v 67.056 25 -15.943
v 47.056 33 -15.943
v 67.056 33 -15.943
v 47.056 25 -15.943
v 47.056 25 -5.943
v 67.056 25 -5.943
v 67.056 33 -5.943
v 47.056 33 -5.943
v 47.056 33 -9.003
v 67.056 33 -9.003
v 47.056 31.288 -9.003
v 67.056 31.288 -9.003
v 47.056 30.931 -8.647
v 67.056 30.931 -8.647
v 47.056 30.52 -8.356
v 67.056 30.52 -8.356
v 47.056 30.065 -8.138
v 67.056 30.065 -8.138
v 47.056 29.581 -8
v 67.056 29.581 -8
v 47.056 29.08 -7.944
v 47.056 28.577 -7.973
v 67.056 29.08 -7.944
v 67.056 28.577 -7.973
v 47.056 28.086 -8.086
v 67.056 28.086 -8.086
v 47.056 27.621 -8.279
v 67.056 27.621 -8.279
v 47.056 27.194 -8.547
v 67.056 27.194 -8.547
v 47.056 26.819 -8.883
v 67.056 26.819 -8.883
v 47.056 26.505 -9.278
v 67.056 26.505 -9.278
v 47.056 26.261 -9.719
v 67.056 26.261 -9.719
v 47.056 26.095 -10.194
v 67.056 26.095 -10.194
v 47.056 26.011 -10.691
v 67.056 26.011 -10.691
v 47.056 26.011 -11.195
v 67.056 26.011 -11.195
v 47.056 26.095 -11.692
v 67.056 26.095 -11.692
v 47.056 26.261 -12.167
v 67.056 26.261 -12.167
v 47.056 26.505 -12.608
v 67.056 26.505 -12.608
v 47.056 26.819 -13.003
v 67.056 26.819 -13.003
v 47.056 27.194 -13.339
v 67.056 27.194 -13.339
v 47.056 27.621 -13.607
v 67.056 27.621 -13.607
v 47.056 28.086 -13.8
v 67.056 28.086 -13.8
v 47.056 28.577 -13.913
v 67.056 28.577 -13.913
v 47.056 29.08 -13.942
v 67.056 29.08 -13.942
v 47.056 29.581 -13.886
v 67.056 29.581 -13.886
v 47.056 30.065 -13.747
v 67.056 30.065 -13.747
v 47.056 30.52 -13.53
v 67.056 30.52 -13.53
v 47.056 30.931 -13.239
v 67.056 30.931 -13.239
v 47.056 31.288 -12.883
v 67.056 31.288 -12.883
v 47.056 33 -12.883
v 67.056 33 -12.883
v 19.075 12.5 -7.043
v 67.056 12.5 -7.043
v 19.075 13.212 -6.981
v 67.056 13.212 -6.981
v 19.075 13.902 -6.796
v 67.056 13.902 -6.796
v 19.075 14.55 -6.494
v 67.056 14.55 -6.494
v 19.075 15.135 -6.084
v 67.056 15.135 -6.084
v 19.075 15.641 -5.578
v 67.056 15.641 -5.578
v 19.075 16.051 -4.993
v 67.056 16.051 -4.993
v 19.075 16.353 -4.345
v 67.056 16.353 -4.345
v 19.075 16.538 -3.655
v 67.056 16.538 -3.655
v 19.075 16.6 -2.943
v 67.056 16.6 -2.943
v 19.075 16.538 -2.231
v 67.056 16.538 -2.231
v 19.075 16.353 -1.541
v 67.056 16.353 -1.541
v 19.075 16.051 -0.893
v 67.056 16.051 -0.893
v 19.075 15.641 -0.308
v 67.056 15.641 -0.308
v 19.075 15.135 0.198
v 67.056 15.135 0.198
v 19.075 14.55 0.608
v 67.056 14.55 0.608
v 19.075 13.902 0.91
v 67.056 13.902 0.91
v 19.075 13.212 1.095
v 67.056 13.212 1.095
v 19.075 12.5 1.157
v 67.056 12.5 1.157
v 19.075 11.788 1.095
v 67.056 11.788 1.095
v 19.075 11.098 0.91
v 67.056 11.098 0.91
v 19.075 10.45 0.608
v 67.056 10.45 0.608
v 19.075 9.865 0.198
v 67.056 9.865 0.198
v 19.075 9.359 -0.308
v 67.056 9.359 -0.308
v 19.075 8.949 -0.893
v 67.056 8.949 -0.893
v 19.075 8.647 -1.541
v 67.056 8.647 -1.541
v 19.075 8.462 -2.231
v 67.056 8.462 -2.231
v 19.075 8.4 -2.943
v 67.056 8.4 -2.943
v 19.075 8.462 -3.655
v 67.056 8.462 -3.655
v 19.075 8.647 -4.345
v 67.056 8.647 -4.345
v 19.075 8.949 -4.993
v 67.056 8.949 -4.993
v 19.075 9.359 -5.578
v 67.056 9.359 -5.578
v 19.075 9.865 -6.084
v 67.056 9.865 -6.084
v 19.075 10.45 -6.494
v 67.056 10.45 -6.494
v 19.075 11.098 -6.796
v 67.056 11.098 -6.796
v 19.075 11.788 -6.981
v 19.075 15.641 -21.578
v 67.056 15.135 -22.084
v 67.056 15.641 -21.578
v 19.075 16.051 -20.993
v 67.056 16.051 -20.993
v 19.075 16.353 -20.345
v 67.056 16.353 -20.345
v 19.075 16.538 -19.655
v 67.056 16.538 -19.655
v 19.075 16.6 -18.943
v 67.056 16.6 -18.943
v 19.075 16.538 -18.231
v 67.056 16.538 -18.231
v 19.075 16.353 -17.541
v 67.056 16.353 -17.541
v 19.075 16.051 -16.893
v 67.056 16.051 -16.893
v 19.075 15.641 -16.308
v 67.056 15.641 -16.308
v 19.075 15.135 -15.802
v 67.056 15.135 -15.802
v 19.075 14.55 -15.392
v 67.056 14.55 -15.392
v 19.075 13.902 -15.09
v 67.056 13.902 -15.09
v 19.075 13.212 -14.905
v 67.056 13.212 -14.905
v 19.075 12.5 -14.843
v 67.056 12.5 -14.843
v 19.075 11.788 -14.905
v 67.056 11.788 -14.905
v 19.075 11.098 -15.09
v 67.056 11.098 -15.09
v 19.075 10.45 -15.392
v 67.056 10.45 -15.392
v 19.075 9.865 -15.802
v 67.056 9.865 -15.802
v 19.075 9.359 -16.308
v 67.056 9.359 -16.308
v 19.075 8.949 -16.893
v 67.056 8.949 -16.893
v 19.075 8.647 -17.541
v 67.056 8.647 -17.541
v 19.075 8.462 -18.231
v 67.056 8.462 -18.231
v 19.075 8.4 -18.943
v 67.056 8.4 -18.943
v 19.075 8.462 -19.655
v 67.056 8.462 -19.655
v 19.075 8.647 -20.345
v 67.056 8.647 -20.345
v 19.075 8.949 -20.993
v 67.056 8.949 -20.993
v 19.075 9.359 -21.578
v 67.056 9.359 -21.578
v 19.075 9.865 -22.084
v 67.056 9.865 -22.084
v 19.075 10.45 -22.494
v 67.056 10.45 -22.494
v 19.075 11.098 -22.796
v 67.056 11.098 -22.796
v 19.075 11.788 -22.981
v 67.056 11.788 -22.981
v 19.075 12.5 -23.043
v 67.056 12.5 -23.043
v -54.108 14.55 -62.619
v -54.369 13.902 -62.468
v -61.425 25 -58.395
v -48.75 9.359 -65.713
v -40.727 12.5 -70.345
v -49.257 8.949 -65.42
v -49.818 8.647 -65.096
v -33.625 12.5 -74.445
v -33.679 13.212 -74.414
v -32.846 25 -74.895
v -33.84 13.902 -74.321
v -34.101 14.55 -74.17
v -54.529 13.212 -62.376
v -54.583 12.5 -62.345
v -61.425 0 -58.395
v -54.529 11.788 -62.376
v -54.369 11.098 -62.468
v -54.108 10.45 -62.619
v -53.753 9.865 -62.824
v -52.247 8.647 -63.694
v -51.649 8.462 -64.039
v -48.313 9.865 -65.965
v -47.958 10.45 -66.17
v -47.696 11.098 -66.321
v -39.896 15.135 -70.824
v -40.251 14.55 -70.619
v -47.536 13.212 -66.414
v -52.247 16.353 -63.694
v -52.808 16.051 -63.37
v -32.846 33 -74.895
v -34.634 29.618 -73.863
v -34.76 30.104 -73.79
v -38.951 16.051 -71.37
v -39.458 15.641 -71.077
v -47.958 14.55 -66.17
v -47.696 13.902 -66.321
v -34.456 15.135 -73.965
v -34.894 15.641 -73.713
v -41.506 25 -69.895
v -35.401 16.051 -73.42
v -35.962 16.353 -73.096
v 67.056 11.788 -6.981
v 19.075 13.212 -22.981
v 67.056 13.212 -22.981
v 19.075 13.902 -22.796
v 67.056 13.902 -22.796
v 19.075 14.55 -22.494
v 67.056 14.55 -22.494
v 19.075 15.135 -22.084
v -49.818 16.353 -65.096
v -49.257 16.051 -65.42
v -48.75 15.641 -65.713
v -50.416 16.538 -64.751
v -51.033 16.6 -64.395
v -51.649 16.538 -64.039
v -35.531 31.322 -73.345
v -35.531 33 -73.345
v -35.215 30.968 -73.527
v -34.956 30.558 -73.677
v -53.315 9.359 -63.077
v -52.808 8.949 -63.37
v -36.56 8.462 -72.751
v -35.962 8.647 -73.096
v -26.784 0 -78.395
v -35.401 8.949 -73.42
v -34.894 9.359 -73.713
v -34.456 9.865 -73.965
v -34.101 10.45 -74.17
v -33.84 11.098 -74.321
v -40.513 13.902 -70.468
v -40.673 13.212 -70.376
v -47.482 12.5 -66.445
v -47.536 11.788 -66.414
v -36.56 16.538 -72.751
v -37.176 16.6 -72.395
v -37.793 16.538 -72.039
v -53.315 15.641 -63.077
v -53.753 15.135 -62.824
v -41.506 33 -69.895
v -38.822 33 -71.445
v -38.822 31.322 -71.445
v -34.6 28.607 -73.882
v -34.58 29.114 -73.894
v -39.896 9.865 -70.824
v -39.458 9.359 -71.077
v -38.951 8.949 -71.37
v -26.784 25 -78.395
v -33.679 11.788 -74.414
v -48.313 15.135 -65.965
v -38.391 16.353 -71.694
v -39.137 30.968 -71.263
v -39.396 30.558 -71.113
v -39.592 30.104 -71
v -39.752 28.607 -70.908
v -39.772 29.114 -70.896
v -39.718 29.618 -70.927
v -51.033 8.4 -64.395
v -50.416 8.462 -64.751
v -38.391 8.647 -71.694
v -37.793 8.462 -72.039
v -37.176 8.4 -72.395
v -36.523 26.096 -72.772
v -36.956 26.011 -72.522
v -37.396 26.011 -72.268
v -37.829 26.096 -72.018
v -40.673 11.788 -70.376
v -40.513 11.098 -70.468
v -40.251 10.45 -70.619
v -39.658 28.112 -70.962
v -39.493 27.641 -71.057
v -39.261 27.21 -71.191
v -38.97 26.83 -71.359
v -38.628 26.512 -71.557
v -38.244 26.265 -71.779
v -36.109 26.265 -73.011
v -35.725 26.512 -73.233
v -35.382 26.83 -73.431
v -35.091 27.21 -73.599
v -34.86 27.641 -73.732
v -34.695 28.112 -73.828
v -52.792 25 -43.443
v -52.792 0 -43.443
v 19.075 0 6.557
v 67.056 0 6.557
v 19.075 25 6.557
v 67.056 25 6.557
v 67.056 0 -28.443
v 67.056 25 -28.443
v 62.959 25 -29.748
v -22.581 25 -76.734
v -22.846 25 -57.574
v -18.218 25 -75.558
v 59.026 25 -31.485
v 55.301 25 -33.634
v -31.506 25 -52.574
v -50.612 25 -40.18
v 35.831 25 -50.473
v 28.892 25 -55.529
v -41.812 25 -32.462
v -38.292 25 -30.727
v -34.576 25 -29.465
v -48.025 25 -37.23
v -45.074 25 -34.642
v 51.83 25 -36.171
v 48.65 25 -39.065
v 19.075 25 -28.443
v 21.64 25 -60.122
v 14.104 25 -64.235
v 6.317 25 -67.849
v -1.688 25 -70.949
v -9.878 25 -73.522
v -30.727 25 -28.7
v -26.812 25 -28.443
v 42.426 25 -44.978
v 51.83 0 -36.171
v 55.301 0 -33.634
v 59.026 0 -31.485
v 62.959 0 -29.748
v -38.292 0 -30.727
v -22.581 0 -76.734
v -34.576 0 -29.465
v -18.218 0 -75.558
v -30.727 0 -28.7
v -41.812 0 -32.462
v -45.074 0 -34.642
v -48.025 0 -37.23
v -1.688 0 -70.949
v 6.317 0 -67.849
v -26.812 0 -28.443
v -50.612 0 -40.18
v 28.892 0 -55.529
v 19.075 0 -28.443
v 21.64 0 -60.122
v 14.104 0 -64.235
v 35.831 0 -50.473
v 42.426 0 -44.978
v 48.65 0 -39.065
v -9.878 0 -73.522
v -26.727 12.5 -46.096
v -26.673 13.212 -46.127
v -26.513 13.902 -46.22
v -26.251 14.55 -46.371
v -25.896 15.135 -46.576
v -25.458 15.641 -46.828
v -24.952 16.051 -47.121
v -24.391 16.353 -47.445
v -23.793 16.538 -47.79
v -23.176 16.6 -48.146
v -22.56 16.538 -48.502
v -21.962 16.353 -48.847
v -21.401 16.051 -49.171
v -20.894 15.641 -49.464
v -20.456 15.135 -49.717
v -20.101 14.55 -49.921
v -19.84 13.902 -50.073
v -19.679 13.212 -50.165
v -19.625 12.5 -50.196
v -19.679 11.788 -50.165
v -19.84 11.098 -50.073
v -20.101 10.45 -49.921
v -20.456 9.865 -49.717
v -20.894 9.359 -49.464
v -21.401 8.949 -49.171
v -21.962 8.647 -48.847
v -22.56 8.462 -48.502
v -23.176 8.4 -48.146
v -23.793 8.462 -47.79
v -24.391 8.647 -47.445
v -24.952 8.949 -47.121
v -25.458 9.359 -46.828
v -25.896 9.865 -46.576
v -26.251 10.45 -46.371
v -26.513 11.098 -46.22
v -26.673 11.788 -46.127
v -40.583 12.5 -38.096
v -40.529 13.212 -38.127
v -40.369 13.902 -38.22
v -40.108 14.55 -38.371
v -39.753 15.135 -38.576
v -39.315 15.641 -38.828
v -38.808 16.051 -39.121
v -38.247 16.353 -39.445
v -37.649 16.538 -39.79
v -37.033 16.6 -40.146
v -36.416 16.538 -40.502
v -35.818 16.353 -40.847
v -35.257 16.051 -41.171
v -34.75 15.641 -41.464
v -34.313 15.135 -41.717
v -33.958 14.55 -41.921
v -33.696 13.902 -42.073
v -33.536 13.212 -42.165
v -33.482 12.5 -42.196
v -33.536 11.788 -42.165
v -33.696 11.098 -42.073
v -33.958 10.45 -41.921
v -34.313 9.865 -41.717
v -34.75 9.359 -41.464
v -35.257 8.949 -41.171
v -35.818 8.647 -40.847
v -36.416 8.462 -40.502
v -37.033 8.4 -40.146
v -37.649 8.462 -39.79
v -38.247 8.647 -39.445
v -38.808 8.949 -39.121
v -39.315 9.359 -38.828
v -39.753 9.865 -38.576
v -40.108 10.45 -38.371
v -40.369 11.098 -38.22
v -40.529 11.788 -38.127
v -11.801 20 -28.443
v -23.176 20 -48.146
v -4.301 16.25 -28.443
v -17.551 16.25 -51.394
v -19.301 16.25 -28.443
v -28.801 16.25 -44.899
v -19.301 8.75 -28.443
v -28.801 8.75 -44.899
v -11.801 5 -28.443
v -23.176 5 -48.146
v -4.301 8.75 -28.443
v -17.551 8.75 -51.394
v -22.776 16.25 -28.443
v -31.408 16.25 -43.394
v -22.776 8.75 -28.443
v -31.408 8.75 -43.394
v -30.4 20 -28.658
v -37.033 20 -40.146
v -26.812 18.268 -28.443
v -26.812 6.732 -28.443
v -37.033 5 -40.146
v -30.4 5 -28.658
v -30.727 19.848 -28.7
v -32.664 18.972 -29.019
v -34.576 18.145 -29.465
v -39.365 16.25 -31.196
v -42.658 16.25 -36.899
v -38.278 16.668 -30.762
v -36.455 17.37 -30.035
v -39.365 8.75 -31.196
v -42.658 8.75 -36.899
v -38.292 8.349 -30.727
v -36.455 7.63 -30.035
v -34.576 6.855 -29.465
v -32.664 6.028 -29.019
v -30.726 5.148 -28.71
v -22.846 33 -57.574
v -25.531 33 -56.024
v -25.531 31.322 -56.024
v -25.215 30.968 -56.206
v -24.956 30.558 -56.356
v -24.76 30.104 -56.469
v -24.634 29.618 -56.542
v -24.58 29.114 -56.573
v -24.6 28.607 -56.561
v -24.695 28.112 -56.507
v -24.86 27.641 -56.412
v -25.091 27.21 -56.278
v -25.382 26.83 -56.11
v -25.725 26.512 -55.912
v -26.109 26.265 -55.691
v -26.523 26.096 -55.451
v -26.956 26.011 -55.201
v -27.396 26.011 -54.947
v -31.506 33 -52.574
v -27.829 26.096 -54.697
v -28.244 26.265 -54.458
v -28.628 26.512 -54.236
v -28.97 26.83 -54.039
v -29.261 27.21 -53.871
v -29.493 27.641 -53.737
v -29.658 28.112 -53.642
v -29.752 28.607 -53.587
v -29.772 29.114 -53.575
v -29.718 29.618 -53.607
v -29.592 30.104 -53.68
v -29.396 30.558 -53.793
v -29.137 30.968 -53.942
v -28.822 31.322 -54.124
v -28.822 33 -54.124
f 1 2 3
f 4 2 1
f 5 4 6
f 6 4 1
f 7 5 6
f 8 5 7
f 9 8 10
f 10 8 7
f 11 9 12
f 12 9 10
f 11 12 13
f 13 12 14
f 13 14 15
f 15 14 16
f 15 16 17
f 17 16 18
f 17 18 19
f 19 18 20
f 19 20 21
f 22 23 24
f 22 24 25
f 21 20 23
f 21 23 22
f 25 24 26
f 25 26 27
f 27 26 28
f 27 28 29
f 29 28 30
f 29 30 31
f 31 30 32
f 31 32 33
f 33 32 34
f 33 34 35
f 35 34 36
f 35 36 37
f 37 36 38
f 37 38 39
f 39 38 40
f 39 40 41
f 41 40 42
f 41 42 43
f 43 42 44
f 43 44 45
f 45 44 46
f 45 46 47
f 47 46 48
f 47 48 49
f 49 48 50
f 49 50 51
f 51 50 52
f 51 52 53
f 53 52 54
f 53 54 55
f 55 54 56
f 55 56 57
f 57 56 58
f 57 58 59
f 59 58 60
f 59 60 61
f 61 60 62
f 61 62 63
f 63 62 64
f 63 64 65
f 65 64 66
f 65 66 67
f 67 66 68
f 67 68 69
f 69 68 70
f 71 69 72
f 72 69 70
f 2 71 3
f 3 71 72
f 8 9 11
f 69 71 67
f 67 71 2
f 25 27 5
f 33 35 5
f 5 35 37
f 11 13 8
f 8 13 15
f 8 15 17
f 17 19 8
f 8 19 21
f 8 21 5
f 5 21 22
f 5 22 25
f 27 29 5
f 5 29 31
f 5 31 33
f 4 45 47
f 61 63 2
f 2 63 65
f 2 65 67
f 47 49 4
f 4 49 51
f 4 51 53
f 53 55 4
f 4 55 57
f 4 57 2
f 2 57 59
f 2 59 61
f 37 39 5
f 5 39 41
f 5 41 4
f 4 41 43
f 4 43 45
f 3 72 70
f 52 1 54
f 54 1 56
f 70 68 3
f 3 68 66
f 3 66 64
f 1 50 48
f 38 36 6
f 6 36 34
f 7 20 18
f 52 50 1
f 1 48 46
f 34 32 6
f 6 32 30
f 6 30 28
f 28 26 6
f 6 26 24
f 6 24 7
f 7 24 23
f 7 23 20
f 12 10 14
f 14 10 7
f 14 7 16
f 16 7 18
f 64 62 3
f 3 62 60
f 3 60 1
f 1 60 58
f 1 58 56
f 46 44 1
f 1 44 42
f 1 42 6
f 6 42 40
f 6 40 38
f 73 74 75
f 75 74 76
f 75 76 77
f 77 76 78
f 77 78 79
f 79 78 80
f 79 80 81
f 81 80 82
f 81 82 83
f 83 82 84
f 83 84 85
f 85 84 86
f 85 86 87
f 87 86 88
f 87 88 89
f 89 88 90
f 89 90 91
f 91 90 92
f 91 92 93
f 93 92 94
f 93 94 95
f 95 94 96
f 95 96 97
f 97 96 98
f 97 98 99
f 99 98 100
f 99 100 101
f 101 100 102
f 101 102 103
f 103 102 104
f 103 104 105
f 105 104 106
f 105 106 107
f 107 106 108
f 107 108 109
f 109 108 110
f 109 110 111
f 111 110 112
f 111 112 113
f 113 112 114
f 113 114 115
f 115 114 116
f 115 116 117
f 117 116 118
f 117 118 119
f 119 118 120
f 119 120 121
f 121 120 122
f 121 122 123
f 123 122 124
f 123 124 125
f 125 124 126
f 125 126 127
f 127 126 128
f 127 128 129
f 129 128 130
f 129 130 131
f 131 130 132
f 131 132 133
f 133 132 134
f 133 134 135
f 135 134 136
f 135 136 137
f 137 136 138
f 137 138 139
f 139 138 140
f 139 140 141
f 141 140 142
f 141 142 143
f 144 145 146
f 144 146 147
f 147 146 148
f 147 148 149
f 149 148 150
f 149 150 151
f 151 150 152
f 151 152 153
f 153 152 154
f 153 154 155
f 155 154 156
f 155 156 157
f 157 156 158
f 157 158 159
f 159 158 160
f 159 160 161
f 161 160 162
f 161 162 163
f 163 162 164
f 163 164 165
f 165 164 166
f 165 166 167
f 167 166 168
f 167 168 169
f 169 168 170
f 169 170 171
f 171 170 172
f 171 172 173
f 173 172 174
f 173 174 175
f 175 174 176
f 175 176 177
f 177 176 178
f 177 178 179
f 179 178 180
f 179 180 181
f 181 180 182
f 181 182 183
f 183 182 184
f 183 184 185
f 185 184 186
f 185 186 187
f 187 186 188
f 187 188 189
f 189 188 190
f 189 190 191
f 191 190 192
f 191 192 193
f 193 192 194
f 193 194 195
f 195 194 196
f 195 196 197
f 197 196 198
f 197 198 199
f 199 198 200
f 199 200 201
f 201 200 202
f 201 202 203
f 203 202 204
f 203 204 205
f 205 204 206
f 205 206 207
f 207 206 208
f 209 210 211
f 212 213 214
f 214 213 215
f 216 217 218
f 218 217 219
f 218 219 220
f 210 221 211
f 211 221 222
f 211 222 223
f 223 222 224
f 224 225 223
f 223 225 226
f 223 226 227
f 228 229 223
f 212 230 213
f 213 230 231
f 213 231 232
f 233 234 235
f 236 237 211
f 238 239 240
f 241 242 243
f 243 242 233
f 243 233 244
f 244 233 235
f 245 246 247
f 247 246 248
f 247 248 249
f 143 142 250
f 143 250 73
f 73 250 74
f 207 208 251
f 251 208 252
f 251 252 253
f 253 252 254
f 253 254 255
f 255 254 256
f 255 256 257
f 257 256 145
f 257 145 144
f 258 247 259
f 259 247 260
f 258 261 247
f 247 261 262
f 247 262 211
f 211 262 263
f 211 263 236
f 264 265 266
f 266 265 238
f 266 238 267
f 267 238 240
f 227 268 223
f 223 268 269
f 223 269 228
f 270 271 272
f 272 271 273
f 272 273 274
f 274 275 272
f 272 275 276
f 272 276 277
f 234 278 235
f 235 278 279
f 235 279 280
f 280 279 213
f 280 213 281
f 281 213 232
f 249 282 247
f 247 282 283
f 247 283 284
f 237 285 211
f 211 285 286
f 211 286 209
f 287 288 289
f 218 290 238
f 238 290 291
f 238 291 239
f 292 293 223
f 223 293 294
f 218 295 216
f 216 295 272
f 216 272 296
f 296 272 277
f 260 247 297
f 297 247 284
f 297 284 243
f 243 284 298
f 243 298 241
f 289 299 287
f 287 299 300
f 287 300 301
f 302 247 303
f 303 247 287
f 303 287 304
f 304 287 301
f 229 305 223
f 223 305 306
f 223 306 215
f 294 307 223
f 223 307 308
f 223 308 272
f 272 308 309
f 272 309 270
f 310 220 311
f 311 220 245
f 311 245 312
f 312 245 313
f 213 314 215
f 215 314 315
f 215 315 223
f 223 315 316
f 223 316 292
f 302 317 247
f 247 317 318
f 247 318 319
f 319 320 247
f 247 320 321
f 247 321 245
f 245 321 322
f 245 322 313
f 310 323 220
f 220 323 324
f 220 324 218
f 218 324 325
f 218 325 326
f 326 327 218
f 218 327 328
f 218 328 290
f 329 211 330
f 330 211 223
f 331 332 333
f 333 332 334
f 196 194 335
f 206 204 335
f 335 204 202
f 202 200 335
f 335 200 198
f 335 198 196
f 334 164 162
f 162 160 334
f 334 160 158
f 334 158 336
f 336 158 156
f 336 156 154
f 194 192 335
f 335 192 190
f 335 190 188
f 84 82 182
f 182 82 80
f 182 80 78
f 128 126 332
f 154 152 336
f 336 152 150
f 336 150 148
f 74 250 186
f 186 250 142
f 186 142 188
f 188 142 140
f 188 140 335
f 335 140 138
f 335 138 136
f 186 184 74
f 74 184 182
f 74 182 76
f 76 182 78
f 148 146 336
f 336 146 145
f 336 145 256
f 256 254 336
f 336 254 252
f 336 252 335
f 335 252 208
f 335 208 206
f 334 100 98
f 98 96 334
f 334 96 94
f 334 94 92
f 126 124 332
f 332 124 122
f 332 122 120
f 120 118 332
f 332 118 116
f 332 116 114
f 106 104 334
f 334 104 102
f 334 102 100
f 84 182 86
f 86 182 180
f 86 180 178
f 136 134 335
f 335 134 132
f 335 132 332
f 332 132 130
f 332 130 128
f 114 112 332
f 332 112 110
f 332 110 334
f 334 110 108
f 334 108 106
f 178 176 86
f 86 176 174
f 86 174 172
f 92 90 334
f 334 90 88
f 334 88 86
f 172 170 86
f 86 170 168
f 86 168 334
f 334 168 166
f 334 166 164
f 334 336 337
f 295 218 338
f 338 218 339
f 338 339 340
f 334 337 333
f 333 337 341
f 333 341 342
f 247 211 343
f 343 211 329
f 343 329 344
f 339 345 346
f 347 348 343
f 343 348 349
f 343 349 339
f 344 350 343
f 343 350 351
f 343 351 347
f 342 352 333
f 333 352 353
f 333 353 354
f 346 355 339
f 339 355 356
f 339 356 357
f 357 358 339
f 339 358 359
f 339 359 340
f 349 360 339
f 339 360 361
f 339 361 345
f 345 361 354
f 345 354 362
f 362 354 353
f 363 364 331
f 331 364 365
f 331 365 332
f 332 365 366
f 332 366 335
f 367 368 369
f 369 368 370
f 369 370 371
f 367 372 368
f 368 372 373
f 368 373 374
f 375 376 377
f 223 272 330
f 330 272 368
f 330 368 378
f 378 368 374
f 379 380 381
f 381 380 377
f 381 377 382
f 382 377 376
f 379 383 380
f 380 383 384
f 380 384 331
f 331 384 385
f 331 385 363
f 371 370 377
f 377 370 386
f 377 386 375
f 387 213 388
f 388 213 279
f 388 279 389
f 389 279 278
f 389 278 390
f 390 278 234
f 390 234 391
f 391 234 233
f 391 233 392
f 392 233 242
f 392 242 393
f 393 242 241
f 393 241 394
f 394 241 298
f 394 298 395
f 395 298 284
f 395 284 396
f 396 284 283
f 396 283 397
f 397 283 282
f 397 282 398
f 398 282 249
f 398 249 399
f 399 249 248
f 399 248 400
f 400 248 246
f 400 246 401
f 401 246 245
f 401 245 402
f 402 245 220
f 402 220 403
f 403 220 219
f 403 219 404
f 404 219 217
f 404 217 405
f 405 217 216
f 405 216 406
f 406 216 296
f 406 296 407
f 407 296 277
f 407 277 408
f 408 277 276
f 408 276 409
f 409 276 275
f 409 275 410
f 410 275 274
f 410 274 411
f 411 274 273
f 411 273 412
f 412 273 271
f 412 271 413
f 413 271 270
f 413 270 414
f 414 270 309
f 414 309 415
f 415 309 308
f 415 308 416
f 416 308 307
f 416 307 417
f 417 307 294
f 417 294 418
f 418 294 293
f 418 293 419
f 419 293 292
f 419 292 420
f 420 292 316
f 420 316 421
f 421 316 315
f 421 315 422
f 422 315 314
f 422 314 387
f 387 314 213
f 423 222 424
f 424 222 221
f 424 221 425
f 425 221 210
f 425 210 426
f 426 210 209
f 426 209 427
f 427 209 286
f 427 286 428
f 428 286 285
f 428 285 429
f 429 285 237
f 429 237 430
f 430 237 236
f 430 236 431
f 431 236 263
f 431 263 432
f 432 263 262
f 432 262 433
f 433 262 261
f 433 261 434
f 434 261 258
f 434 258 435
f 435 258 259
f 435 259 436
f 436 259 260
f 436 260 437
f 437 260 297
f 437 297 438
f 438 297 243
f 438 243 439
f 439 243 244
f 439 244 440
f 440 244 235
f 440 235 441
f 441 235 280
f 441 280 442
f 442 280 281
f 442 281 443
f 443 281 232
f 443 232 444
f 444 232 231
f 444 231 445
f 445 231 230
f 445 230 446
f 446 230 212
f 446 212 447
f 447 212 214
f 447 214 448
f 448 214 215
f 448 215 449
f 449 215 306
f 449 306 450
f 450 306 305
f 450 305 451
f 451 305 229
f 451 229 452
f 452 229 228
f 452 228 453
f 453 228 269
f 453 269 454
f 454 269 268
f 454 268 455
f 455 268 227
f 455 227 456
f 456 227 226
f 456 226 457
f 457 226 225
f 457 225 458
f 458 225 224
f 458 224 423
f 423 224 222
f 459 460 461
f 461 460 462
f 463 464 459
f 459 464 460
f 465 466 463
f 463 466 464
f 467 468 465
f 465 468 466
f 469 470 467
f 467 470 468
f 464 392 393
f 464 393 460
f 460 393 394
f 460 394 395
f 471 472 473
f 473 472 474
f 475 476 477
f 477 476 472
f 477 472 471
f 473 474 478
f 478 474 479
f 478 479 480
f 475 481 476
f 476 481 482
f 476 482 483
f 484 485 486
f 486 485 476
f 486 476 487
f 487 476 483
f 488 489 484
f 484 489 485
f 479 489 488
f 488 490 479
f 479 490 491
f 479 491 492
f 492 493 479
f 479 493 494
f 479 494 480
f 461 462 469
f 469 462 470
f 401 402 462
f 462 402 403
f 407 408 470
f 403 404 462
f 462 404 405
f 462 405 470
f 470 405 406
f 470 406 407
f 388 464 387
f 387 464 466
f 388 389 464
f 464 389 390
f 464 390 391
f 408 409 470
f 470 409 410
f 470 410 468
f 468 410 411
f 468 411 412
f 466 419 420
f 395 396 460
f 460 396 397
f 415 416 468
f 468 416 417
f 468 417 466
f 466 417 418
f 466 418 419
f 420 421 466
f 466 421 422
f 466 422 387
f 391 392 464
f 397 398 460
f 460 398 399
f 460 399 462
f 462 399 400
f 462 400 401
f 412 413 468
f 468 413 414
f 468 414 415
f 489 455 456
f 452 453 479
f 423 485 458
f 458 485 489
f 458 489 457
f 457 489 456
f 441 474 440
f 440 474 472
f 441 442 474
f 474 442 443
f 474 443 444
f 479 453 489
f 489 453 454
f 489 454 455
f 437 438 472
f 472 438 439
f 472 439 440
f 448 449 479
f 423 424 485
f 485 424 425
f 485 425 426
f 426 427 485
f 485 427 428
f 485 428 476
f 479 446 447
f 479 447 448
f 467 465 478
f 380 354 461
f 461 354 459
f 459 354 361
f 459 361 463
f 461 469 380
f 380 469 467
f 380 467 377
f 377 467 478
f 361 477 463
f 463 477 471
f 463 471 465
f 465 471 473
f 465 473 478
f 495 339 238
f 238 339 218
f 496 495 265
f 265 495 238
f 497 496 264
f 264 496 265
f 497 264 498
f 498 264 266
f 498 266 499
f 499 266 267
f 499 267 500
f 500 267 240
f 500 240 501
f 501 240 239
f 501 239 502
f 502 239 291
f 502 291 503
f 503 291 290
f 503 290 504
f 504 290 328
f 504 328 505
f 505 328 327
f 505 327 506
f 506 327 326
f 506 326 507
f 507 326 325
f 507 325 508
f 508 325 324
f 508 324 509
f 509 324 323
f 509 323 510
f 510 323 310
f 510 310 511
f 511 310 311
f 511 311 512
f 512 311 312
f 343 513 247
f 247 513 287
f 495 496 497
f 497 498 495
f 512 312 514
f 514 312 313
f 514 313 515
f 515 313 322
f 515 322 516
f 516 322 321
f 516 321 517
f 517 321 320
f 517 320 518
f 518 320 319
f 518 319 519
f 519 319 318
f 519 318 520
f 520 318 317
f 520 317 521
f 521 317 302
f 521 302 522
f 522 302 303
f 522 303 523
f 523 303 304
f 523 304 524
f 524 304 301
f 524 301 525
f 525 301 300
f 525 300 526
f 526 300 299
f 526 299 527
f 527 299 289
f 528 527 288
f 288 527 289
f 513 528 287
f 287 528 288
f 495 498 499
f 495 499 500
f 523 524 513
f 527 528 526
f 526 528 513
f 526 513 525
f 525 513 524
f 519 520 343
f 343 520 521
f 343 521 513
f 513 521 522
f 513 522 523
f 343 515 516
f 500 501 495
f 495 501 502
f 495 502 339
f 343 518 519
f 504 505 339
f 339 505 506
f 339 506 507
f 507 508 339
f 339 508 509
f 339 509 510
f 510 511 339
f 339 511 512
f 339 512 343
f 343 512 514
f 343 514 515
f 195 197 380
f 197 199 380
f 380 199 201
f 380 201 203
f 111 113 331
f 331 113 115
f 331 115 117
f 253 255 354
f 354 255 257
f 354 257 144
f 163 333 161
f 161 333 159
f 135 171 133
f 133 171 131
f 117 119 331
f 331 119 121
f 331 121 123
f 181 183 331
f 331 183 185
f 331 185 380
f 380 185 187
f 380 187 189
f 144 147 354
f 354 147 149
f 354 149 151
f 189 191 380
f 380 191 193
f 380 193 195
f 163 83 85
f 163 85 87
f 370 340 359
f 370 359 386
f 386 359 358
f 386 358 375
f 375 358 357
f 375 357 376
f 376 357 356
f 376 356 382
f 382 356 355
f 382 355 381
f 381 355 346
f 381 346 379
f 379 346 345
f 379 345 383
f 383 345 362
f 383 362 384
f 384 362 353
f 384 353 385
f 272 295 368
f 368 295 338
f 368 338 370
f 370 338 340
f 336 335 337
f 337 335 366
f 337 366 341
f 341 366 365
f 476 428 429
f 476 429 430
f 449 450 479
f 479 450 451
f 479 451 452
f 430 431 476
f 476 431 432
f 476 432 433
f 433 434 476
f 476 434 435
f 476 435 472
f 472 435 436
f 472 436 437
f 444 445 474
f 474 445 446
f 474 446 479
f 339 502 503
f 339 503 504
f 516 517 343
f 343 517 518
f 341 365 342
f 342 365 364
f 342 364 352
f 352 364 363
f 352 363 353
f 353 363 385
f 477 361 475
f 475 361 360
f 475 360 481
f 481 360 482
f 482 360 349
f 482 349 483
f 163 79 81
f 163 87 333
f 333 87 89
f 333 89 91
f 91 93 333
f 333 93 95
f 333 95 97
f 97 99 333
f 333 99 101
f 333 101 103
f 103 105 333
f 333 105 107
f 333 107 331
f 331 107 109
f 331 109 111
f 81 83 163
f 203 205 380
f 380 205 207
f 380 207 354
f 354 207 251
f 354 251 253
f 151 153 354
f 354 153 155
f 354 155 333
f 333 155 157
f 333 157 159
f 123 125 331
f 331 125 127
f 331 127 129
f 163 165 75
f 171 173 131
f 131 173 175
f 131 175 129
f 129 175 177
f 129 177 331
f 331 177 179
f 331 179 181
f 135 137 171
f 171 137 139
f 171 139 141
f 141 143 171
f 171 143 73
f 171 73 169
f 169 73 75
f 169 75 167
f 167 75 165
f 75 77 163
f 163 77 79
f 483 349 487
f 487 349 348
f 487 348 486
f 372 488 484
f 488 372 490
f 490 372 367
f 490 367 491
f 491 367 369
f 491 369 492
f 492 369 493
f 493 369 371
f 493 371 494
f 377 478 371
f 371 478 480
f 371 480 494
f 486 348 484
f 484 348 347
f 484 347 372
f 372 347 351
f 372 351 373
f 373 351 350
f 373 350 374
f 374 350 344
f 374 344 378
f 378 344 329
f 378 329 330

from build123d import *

# Parameters (mm, degrees)
BOSS_EXTRUDE1_DEPTH = 25
SKETCH2_R           = 4.1
CUT_EXTRUDE1_DEPTH  = 153.571488895
SKETCH3_R           = 4.1
CUT_EXTRUDE2_DEPTH  = 135.704378021
CUT_EXTRUDE4_START  = -28
CUT_EXTRUDE4_DEPTH  = 107.704378021
CHAMFER1_SIZE       = 56
CUT_EXTRUDE5_DEPTH  = 107.147290362
BOSS_EXTRUDE2_DEPTH = 20
BOSS_EXTRUDE3_DEPTH = 20
SKETCH9_W           = 20
SKETCH9_H           = 35
CUT_EXTRUDE6_DEPTH  = 107.147290362
BOSS_EXTRUDE4_DEPTH = 25
FILLET1_R           = 40
FILLET2_R           = 30


with BuildPart() as part:
    # Sketch1 → Boss-Extrude1 (new body)
    with BuildSketch(Plane(origin=(0, 0, 0), x_dir=(1, 0, 0), z_dir=(0, 1, 0))):
        Polygon((-61.424858117, 58.394853086), (-23.924858117, -6.557052198), (67.055903996, -6.557052198), (67.055903996, 28.442947802), (2.055903996, 28.442947802), (-26.783841966, 78.394853086), align=None)
    extrude(amount=BOSS_EXTRUDE1_DEPTH)

    # Sketch2 → Cut-Extrude1 (cut, through all)
    with BuildSketch(Plane(origin=(67.055903996, 0, 0), x_dir=(0, 0, -1), z_dir=(1, 0, 0))):
        with Locations((2.942947802, 12.5)):
            Circle(SKETCH2_R)
        with Locations((18.942947802, 12.5)):
            Circle(SKETCH2_R)
    extrude(amount=-CUT_EXTRUDE1_DEPTH, mode=Mode.SUBTRACT)

    # Sketch3 → Cut-Extrude2 (cut, through all)
    with BuildSketch(Plane(origin=(-40.641927641, 0, -70.393883591), x_dir=(-0.8660254037844396, 0, 0.4999999999999984), z_dir=(-0.49999999999999833, 0, -0.8660254037844395))):
        with Locations((-4.00193899, 12.5)):
            Circle(SKETCH3_R)
        with Locations((11.99806101, 12.5)):
            Circle(SKETCH3_R)
    extrude(amount=-CUT_EXTRUDE2_DEPTH, mode=Mode.SUBTRACT)

    # Sketch5 → Cut-Extrude4 (cut, through all)
    with BuildSketch(Plane(origin=(-40.641927641, 0, -70.393883591), x_dir=(-0.8660254037844397, 0, 0.4999999999999983), z_dir=(-0.4999999999999982, 0, -0.8660254037844396)).offset(CUT_EXTRUDE4_START)):
        Polygon((-10.497129518, 16.25), (-10.497129518, 8.75), (-4.00193899, 5), (2.493251539, 8.75), (2.493251539, 16.25), (-4.00193899, 20), align=None)
        Polygon((5.502870482, 8.75), (11.99806101, 5), (18.493251539, 8.75), (18.493251539, 16.25), (11.99806101, 20), (5.502870482, 16.25), align=None)
    extrude(amount=-CUT_EXTRUDE4_DEPTH, mode=Mode.SUBTRACT)

    # Chamfer1
    chamfer1_edges = [part.edges().sort_by_distance(p)[0] for p in [
        (2.055903996, 12.5, -28.442947802),
    ]]
    chamfer(chamfer1_edges, length=CHAMFER1_SIZE)

    # Sketch6 → Cut-Extrude5 (cut, through all)
    with BuildSketch(Plane.XZ):
        Polygon((-0.924858117, 6.557052198), (-0.924858117, -28.442947802), (-44.132117539, -28.442947802), (-23.924858117, 6.557052198), align=None)
    extrude(amount=-CUT_EXTRUDE5_DEPTH, mode=Mode.SUBTRACT)

    # Sketch7 → Boss-Extrude2 (add)
    with BuildSketch(Plane(origin=(-40.641927641, 0, -70.393883591), x_dir=(-0.86602540378444, 0, 0.49999999999999784), z_dir=(-0.49999999999999784, 0, -0.86602540378444))):
        with BuildLine():
            Line((0.99806101, 33), (0.99806101, 25))
            Line((0.99806101, 25), (-9.00193899, 25))
            Line((-9.00193899, 25), (-9.00193899, 33))
            Line((-9.00193899, 33), (-5.90193899, 33))
            Line((-5.90193899, 33), (-5.90193899, 31.321637353))
            ThreePointArc((-5.90193899, 31.321637353), (-4.00193899, 26), (-2.10193899, 31.321637353))
            Line((-2.10193899, 31.321637353), (-2.10193899, 33))
            Line((-2.10193899, 33), (0.99806101, 33))
        make_face()
    extrude(amount=-BOSS_EXTRUDE2_DEPTH)

    # Sketch9 → Cut-Extrude6 (cut, through all)
    with BuildSketch(Plane(origin=(0, 25, 0), x_dir=(1, 0, 0), z_dir=(0, 1, 0))):
        with Locations((9.075141883, 10.942947802)):
            Rectangle(SKETCH9_W, SKETCH9_H)
    extrude(amount=-CUT_EXTRUDE6_DEPTH, mode=Mode.SUBTRACT)

    # Sketch10 → Boss-Extrude4 (add)
    with BuildSketch(Plane(origin=(0, 25, 0), x_dir=(1, 0, 0), z_dir=(0, 1, 0))):
        with BuildLine():
            Line((58.055903996, 28.442947802), (-25.944096004, 76.940370414))
            ThreePointArc((-25.944096004, 76.940370414), (20.671866984, 60.686741527), (58.055903996, 28.442947802))
        make_face()
    extrude(amount=-BOSS_EXTRUDE4_DEPTH)

    # Fillet1
    # the kernel refuses this fillet: 40 mm, written as the material it adds along each edge
    with BuildSketch(Plane(origin=(-25.944096004, 0, -76.940370414), x_dir=(-0.4999999999999963, 0, -0.8660254037844409), z_dir=(0, 1, 0))) as fillet1_piece_1:
        with BuildLine():
            CenterArc((24.734711677, -32.687258101), FILLET1_R, 125.196366451, 12.952121212)
            Line((-5.060346158, -5.999160967), (-5.656247315, -5.465399025))
            ThreePointArc((-5.656247315, -5.465399025), (-3.097082225, -2.521387527), (-0.626569921, 0.497403391))
            Line((-0.626569921, 0.497403391), (0, 0.8))
            ThreePointArc((0, 0.8), (0.839745962, 0.8), (1.218387529, 0.653745162))
            Line((1.218387529, 0.653745162), (1.679491924, 0))
        make_face()
    extrude(amount=25)
    with BuildSketch(Plane(origin=(58.055903996, 0, -28.442947802), x_dir=(1, 0, 0), z_dir=(0, 1, 0))) as fillet1_piece_2:
        with BuildLine():
            CenterArc((19.072279139, 38.711099093), FILLET1_R, 224.605770428, 30.809763912)
            Line((-9.40593392, 10.622108705), (-9.975498181, 10.060328897))
            ThreePointArc((-9.975498181, 10.060328897), (-5.159081438, 4.907162549), (-0.626569921, -0.497403391))
            Line((-0.626569921, -0.497403391), (0, -0.8))
            ThreePointArc((0, -0.8), (4.5, -0.8), (8.798554417, -0.774221982))
            Line((8.798554417, -0.774221982), (9, 0))
        make_face()
    extrude(amount=25)

    # Fillet2
    # the kernel refuses this fillet: 30 mm, written as the material it takes off along each edge
    with BuildSketch(Plane(origin=(-44.132117539, -43.301270189, -28.442947802), x_dir=(-0.4999999999999983, 0, -0.8660254037844396), z_dir=(0, 1, 0))) as fillet2_piece_1:
        with BuildLine():
            CenterArc((FILLET2_R * 0.57735026919, -FILLET2_R), FILLET2_R, 90, 60)
            Line((-FILLET2_R * 0.288675134595, -FILLET2_R * 0.5), (0, 0))
            Line((0, 0), (FILLET2_R * 0.57735026919, 0))
        make_face()
    extrude(amount=111.602540378, mode=Mode.SUBTRACT)


with BuildPart() as body_2:
    # Sketch8 → Boss-Extrude3 (new body)
    with BuildSketch(Plane(origin=(67.055903996, 0, 0), x_dir=(0, 0, -1), z_dir=(1, 0, 0))):
        with BuildLine():
            Line((5.942947802, 33), (9.002583557, 33))
            Line((9.002583557, 33), (9.002583557, 31.288009309))
            ThreePointArc((9.002583557, 31.288009309), (10.942947802, 26), (12.883312047, 31.288009309))
            Line((12.883312047, 31.288009309), (12.883312047, 33))
            Line((12.883312047, 33), (15.942947802, 33))
            Line((15.942947802, 33), (15.942947802, 25))
            Line((15.942947802, 25), (5.942947802, 25))
            Line((5.942947802, 25), (5.942947802, 33))
        make_face()
    extrude(amount=-BOSS_EXTRUDE3_DEPTH)


solid = Compound([part.part, body_2.part])
